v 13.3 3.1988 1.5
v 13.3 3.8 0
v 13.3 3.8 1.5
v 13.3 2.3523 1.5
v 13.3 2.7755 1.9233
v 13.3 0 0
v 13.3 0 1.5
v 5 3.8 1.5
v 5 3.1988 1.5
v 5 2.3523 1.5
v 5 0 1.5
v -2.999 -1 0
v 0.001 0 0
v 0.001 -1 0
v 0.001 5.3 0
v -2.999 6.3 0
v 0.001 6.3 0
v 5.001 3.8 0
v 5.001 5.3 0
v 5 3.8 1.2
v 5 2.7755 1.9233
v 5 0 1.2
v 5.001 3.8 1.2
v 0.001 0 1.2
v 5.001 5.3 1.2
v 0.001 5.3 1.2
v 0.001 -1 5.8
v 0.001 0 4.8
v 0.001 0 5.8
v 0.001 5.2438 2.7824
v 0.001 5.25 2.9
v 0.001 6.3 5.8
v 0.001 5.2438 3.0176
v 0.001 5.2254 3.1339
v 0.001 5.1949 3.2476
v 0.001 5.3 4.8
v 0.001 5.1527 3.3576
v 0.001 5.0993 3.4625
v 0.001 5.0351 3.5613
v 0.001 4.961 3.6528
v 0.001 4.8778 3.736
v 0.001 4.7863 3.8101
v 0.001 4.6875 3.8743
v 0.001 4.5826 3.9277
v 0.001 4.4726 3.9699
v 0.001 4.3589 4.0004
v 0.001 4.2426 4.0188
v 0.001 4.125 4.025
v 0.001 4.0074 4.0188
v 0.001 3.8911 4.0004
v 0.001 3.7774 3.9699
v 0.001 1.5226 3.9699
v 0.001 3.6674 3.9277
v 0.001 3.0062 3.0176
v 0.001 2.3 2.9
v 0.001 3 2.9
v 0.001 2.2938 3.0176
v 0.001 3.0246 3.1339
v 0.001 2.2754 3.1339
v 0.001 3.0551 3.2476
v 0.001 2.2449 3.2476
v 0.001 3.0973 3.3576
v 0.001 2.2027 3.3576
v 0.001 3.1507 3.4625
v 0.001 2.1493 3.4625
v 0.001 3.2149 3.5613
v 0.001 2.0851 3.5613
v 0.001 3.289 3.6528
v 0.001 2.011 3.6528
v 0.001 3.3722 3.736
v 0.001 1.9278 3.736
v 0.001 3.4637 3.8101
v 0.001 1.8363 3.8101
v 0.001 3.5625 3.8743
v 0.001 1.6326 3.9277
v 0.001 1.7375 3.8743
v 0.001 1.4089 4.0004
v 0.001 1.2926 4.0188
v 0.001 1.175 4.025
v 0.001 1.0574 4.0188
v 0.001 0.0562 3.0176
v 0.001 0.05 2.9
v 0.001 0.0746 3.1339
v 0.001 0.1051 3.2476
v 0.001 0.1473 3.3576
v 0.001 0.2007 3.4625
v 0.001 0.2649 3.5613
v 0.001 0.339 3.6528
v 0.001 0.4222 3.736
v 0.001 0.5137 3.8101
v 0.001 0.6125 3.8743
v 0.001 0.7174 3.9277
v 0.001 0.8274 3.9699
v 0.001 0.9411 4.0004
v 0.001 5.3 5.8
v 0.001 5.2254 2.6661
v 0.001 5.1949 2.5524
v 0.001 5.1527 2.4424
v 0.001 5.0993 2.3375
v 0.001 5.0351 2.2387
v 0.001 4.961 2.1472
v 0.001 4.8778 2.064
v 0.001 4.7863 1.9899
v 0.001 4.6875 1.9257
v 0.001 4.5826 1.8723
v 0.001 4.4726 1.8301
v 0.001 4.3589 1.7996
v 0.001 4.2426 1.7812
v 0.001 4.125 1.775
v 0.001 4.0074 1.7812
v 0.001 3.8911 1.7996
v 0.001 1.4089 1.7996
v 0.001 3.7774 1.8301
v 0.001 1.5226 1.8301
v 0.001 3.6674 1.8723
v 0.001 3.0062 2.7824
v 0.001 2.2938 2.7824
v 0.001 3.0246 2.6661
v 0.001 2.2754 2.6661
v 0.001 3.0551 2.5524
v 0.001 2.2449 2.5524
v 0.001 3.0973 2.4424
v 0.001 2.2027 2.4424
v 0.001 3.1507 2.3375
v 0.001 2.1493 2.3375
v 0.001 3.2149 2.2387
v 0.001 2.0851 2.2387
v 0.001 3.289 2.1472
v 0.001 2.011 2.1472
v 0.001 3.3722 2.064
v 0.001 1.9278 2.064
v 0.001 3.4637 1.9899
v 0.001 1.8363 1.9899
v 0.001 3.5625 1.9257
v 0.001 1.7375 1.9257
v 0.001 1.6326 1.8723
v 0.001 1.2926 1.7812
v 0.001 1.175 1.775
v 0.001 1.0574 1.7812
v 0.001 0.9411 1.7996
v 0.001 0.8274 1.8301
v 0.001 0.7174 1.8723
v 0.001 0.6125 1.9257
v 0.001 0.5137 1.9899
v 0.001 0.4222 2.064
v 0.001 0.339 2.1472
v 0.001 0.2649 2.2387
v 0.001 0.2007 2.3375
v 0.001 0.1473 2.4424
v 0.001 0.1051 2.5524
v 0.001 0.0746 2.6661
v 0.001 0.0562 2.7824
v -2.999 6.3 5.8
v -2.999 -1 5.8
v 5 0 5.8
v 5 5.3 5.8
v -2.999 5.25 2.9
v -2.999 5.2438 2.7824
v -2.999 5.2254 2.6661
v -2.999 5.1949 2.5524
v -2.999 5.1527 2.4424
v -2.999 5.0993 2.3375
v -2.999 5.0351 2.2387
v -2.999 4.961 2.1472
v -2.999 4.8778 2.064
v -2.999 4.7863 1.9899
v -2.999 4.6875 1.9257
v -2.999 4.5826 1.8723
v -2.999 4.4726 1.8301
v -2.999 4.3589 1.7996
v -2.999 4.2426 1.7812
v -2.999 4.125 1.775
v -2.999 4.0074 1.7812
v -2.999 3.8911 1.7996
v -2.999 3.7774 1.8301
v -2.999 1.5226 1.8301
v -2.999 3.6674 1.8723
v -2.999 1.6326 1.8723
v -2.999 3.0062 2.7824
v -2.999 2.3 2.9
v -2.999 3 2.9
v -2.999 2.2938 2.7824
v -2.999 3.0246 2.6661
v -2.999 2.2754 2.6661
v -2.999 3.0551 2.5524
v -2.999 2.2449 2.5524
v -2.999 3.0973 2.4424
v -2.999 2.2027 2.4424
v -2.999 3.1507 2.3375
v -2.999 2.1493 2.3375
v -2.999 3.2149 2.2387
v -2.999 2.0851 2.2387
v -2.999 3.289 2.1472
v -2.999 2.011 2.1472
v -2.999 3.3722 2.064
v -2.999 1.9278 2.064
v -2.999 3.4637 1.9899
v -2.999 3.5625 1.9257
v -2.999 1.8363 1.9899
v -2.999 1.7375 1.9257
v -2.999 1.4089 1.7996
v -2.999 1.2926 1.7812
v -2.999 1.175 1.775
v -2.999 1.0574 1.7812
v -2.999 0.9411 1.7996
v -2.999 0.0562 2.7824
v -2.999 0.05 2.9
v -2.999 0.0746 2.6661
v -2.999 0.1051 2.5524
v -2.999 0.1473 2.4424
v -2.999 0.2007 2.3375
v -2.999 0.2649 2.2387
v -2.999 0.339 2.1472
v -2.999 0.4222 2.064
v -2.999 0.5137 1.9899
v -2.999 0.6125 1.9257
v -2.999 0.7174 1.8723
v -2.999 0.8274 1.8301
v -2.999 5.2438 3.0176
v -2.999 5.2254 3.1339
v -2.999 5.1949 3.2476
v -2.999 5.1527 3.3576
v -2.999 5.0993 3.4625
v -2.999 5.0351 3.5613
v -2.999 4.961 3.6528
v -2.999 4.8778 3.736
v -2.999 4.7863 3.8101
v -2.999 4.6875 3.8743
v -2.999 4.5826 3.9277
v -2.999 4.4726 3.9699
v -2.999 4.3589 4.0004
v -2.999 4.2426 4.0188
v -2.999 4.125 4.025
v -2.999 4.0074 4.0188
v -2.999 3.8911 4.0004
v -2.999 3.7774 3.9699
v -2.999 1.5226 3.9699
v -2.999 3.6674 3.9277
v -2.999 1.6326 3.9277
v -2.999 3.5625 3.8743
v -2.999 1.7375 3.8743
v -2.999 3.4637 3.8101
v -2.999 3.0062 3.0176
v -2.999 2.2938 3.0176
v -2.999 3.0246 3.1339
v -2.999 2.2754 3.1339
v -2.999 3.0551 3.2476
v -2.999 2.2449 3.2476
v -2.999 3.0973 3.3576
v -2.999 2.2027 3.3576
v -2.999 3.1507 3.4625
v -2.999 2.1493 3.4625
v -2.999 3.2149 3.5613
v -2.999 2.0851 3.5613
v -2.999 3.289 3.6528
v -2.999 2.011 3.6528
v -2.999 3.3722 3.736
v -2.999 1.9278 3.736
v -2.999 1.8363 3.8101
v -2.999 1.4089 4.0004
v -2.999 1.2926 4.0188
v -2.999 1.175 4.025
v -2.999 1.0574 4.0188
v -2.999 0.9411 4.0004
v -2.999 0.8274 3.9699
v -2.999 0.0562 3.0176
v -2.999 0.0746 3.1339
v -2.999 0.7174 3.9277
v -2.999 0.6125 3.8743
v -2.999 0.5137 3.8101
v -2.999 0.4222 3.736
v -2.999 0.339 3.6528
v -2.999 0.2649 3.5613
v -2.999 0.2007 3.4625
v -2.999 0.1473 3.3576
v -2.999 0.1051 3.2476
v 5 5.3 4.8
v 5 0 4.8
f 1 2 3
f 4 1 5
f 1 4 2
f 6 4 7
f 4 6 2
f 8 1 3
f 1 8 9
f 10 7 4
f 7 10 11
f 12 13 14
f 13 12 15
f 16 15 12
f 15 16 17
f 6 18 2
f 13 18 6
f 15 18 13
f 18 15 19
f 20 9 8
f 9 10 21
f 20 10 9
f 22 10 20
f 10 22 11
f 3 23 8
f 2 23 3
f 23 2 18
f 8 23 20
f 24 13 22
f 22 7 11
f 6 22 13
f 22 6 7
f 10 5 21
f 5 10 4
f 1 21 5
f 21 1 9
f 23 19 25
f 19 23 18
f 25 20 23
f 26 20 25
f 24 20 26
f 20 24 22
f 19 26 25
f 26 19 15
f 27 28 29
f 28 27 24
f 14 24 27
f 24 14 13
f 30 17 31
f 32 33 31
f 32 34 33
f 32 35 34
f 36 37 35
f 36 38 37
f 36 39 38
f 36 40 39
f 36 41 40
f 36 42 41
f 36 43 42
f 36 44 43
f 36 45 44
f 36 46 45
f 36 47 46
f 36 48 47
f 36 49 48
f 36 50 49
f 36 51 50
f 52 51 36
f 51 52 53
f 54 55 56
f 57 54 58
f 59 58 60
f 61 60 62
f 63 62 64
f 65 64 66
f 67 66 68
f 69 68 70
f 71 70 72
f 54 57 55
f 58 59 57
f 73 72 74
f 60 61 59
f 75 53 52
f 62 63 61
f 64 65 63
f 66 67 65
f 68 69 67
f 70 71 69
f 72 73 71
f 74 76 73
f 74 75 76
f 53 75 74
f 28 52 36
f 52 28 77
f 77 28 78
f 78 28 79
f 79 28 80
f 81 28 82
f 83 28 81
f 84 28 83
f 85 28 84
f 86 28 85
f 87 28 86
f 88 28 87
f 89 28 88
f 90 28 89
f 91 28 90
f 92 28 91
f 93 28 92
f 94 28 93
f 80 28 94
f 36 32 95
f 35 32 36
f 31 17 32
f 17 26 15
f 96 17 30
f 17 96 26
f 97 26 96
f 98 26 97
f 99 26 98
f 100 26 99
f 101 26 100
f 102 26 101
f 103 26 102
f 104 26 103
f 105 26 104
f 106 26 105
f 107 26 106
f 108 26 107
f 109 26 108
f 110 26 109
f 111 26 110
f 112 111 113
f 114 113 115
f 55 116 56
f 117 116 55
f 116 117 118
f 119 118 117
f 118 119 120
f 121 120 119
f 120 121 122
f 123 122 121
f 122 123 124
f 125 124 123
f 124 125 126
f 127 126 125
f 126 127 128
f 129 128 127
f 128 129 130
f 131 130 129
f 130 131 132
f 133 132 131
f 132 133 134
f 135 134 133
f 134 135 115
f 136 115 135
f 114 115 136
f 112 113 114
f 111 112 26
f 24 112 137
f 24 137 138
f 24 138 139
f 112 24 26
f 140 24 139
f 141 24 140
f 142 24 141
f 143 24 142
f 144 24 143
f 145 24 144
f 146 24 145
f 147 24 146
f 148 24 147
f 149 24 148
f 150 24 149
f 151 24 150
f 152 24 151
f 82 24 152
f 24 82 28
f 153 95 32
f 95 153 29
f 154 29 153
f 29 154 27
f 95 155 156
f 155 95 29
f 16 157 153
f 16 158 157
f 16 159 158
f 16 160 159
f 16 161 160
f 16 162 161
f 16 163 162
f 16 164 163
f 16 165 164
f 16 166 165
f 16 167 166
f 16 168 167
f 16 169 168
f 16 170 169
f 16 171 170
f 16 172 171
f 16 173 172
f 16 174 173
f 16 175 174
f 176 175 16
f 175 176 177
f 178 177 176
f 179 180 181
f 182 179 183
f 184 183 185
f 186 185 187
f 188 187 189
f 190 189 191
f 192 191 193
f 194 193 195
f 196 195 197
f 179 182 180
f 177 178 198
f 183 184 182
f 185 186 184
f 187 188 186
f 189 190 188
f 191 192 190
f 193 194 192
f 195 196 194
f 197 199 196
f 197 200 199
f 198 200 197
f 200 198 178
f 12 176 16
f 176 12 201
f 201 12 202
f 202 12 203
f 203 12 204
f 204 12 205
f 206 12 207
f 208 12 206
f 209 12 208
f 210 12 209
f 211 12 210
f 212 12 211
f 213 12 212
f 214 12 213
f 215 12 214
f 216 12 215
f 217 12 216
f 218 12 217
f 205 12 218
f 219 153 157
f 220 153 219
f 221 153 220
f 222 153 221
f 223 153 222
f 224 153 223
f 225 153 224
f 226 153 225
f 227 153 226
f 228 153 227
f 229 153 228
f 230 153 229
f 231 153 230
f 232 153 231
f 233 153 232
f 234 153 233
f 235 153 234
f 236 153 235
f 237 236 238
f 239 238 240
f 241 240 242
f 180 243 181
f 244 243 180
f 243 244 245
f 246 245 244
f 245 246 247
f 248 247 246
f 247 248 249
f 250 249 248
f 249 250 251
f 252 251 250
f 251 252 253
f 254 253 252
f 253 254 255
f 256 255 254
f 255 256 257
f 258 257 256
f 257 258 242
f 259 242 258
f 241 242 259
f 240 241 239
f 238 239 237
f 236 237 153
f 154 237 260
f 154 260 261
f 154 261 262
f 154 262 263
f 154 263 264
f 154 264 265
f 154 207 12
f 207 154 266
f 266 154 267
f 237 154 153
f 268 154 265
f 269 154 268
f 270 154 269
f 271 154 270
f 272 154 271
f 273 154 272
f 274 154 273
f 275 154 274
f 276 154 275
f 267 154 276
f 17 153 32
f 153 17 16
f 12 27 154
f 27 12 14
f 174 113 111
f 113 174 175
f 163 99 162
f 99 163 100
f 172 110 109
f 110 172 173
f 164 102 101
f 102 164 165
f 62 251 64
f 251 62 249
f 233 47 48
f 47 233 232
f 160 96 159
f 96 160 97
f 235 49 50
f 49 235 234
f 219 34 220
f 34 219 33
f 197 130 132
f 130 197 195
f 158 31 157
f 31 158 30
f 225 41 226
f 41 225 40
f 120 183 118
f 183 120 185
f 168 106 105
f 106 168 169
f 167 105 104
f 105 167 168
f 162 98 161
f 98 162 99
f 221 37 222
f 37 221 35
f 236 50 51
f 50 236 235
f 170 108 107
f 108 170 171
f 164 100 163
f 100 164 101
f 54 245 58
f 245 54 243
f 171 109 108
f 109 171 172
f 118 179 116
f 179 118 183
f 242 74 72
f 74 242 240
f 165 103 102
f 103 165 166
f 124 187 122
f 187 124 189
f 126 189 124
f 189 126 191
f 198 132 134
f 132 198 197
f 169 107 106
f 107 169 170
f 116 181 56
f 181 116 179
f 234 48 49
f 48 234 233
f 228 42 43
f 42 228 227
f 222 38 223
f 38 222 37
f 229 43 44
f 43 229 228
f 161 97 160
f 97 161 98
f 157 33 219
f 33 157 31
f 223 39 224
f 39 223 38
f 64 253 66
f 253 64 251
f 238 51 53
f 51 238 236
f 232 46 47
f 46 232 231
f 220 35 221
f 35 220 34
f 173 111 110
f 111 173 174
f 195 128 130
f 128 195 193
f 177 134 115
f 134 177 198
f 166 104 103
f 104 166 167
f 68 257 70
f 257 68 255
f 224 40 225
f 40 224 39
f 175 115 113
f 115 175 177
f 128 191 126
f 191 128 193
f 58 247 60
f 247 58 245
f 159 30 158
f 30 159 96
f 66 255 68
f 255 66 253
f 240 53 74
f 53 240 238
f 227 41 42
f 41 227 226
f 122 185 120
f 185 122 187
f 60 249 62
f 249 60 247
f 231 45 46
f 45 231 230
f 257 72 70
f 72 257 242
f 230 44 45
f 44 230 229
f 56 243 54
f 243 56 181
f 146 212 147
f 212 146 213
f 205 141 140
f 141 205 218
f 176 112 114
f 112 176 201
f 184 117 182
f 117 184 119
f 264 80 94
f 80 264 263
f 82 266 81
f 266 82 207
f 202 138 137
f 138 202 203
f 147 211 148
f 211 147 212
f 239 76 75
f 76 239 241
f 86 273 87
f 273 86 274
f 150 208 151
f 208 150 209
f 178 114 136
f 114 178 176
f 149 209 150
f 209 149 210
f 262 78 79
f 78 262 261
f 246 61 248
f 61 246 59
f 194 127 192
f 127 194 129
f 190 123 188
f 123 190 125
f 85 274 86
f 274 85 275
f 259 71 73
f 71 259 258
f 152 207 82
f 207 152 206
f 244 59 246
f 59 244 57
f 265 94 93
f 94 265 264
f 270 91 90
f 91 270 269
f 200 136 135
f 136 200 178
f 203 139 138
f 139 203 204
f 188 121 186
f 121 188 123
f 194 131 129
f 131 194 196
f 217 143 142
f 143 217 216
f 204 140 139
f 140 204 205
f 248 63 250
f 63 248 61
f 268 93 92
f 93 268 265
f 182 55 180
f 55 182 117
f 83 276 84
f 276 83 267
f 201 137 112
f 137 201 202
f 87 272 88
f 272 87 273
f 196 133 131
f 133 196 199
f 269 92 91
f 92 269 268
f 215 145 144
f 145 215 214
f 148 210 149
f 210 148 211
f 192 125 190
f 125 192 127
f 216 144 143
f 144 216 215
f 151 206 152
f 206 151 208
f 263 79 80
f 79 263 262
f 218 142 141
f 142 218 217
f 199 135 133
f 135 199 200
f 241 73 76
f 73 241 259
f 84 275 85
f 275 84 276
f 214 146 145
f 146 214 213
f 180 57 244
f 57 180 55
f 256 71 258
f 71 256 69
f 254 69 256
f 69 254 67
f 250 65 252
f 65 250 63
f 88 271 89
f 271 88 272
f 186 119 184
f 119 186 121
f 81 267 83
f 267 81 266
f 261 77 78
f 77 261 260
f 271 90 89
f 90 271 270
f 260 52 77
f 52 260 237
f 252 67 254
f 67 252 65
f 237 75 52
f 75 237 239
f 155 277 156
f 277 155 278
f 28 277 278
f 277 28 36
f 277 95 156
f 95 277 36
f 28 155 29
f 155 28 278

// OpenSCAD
$fn=60;

// dimensions of the jst plug
jst_length_total = 13.3;
jst_length_back = 5;
jst_length_front = jst_length_total - jst_length_back;

jst_height_front = 3;
jst_height_back = 3.3;

jst_width = 5.3;
bottom_cut = 1.5;
jst_bottom_width = jst_width - bottom_cut;

jst_grove_width = 0.6;
jst_grove_height = 0.4;

cable_width = 2.25;
cable_distance = 0.7;

// dimensions related to the socket
socket_top_height = 1;
socket_bottom_height = 1.5;
socket_total_height = socket_bottom_height + jst_height_back + socket_top_height;

socket_back_length = 3;
socket_back_width_addition = 1;

socket_back_width = jst_width + socket_back_width_addition * 2;

//top_rail_width = 1;
//top_rail_height = 0.5;

//top_rail_plug_length = 3;

// constant for joining things together
JOIN = 0.001;


module cable_break () {
    cable_offset_y = socket_back_width / 2;
    cable_offset_z = socket_total_height / 2;
    translate([-1, cable_offset_y, cable_offset_z]) rotate([0,  90, 0]) cylinder(socket_back_length + 2, d=cable_width);
}

module back() {
    cable_offset = (cable_width + cable_distance) / 2;
    difference() {
        cube([socket_back_length, socket_back_width, socket_total_height]);
        translate([0, cable_offset, 0]) cable_break();
        translate([0, -cable_offset, 0]) cable_break();
    }
}

module grove() {
    x_offset = jst_length_front / 2;
    y_offset = jst_grove_width / 1.41;
    translate([x_offset, y_offset, 0])
        rotate([45, 0, 0])
            cube([jst_length_front, jst_grove_width, jst_grove_width], center=true);
}

module bottom() {
    jst_height_delta = jst_height_back - jst_height_front;
    bottom_back_height = socket_bottom_height - jst_height_delta;
    grove_offset_y = (jst_width - jst_grove_width) / 2;

    cube([jst_length_back + JOIN, jst_width, bottom_back_height]);
    translate([jst_length_back, 0, 0]) {
        cube([jst_length_front, jst_bottom_width, socket_bottom_height]);
        translate([0, grove_offset_y, socket_bottom_height - JOIN]) grove();
    }

}

module top() {
    cube([jst_length_back, jst_width, socket_top_height]);
}

module assembly() {
    bottom();
    translate([JOIN - socket_back_length, -socket_back_width_addition, 0]) back();
    translate([0, 0, socket_total_height - socket_top_height]) top();
}

assembly();
//grove();
